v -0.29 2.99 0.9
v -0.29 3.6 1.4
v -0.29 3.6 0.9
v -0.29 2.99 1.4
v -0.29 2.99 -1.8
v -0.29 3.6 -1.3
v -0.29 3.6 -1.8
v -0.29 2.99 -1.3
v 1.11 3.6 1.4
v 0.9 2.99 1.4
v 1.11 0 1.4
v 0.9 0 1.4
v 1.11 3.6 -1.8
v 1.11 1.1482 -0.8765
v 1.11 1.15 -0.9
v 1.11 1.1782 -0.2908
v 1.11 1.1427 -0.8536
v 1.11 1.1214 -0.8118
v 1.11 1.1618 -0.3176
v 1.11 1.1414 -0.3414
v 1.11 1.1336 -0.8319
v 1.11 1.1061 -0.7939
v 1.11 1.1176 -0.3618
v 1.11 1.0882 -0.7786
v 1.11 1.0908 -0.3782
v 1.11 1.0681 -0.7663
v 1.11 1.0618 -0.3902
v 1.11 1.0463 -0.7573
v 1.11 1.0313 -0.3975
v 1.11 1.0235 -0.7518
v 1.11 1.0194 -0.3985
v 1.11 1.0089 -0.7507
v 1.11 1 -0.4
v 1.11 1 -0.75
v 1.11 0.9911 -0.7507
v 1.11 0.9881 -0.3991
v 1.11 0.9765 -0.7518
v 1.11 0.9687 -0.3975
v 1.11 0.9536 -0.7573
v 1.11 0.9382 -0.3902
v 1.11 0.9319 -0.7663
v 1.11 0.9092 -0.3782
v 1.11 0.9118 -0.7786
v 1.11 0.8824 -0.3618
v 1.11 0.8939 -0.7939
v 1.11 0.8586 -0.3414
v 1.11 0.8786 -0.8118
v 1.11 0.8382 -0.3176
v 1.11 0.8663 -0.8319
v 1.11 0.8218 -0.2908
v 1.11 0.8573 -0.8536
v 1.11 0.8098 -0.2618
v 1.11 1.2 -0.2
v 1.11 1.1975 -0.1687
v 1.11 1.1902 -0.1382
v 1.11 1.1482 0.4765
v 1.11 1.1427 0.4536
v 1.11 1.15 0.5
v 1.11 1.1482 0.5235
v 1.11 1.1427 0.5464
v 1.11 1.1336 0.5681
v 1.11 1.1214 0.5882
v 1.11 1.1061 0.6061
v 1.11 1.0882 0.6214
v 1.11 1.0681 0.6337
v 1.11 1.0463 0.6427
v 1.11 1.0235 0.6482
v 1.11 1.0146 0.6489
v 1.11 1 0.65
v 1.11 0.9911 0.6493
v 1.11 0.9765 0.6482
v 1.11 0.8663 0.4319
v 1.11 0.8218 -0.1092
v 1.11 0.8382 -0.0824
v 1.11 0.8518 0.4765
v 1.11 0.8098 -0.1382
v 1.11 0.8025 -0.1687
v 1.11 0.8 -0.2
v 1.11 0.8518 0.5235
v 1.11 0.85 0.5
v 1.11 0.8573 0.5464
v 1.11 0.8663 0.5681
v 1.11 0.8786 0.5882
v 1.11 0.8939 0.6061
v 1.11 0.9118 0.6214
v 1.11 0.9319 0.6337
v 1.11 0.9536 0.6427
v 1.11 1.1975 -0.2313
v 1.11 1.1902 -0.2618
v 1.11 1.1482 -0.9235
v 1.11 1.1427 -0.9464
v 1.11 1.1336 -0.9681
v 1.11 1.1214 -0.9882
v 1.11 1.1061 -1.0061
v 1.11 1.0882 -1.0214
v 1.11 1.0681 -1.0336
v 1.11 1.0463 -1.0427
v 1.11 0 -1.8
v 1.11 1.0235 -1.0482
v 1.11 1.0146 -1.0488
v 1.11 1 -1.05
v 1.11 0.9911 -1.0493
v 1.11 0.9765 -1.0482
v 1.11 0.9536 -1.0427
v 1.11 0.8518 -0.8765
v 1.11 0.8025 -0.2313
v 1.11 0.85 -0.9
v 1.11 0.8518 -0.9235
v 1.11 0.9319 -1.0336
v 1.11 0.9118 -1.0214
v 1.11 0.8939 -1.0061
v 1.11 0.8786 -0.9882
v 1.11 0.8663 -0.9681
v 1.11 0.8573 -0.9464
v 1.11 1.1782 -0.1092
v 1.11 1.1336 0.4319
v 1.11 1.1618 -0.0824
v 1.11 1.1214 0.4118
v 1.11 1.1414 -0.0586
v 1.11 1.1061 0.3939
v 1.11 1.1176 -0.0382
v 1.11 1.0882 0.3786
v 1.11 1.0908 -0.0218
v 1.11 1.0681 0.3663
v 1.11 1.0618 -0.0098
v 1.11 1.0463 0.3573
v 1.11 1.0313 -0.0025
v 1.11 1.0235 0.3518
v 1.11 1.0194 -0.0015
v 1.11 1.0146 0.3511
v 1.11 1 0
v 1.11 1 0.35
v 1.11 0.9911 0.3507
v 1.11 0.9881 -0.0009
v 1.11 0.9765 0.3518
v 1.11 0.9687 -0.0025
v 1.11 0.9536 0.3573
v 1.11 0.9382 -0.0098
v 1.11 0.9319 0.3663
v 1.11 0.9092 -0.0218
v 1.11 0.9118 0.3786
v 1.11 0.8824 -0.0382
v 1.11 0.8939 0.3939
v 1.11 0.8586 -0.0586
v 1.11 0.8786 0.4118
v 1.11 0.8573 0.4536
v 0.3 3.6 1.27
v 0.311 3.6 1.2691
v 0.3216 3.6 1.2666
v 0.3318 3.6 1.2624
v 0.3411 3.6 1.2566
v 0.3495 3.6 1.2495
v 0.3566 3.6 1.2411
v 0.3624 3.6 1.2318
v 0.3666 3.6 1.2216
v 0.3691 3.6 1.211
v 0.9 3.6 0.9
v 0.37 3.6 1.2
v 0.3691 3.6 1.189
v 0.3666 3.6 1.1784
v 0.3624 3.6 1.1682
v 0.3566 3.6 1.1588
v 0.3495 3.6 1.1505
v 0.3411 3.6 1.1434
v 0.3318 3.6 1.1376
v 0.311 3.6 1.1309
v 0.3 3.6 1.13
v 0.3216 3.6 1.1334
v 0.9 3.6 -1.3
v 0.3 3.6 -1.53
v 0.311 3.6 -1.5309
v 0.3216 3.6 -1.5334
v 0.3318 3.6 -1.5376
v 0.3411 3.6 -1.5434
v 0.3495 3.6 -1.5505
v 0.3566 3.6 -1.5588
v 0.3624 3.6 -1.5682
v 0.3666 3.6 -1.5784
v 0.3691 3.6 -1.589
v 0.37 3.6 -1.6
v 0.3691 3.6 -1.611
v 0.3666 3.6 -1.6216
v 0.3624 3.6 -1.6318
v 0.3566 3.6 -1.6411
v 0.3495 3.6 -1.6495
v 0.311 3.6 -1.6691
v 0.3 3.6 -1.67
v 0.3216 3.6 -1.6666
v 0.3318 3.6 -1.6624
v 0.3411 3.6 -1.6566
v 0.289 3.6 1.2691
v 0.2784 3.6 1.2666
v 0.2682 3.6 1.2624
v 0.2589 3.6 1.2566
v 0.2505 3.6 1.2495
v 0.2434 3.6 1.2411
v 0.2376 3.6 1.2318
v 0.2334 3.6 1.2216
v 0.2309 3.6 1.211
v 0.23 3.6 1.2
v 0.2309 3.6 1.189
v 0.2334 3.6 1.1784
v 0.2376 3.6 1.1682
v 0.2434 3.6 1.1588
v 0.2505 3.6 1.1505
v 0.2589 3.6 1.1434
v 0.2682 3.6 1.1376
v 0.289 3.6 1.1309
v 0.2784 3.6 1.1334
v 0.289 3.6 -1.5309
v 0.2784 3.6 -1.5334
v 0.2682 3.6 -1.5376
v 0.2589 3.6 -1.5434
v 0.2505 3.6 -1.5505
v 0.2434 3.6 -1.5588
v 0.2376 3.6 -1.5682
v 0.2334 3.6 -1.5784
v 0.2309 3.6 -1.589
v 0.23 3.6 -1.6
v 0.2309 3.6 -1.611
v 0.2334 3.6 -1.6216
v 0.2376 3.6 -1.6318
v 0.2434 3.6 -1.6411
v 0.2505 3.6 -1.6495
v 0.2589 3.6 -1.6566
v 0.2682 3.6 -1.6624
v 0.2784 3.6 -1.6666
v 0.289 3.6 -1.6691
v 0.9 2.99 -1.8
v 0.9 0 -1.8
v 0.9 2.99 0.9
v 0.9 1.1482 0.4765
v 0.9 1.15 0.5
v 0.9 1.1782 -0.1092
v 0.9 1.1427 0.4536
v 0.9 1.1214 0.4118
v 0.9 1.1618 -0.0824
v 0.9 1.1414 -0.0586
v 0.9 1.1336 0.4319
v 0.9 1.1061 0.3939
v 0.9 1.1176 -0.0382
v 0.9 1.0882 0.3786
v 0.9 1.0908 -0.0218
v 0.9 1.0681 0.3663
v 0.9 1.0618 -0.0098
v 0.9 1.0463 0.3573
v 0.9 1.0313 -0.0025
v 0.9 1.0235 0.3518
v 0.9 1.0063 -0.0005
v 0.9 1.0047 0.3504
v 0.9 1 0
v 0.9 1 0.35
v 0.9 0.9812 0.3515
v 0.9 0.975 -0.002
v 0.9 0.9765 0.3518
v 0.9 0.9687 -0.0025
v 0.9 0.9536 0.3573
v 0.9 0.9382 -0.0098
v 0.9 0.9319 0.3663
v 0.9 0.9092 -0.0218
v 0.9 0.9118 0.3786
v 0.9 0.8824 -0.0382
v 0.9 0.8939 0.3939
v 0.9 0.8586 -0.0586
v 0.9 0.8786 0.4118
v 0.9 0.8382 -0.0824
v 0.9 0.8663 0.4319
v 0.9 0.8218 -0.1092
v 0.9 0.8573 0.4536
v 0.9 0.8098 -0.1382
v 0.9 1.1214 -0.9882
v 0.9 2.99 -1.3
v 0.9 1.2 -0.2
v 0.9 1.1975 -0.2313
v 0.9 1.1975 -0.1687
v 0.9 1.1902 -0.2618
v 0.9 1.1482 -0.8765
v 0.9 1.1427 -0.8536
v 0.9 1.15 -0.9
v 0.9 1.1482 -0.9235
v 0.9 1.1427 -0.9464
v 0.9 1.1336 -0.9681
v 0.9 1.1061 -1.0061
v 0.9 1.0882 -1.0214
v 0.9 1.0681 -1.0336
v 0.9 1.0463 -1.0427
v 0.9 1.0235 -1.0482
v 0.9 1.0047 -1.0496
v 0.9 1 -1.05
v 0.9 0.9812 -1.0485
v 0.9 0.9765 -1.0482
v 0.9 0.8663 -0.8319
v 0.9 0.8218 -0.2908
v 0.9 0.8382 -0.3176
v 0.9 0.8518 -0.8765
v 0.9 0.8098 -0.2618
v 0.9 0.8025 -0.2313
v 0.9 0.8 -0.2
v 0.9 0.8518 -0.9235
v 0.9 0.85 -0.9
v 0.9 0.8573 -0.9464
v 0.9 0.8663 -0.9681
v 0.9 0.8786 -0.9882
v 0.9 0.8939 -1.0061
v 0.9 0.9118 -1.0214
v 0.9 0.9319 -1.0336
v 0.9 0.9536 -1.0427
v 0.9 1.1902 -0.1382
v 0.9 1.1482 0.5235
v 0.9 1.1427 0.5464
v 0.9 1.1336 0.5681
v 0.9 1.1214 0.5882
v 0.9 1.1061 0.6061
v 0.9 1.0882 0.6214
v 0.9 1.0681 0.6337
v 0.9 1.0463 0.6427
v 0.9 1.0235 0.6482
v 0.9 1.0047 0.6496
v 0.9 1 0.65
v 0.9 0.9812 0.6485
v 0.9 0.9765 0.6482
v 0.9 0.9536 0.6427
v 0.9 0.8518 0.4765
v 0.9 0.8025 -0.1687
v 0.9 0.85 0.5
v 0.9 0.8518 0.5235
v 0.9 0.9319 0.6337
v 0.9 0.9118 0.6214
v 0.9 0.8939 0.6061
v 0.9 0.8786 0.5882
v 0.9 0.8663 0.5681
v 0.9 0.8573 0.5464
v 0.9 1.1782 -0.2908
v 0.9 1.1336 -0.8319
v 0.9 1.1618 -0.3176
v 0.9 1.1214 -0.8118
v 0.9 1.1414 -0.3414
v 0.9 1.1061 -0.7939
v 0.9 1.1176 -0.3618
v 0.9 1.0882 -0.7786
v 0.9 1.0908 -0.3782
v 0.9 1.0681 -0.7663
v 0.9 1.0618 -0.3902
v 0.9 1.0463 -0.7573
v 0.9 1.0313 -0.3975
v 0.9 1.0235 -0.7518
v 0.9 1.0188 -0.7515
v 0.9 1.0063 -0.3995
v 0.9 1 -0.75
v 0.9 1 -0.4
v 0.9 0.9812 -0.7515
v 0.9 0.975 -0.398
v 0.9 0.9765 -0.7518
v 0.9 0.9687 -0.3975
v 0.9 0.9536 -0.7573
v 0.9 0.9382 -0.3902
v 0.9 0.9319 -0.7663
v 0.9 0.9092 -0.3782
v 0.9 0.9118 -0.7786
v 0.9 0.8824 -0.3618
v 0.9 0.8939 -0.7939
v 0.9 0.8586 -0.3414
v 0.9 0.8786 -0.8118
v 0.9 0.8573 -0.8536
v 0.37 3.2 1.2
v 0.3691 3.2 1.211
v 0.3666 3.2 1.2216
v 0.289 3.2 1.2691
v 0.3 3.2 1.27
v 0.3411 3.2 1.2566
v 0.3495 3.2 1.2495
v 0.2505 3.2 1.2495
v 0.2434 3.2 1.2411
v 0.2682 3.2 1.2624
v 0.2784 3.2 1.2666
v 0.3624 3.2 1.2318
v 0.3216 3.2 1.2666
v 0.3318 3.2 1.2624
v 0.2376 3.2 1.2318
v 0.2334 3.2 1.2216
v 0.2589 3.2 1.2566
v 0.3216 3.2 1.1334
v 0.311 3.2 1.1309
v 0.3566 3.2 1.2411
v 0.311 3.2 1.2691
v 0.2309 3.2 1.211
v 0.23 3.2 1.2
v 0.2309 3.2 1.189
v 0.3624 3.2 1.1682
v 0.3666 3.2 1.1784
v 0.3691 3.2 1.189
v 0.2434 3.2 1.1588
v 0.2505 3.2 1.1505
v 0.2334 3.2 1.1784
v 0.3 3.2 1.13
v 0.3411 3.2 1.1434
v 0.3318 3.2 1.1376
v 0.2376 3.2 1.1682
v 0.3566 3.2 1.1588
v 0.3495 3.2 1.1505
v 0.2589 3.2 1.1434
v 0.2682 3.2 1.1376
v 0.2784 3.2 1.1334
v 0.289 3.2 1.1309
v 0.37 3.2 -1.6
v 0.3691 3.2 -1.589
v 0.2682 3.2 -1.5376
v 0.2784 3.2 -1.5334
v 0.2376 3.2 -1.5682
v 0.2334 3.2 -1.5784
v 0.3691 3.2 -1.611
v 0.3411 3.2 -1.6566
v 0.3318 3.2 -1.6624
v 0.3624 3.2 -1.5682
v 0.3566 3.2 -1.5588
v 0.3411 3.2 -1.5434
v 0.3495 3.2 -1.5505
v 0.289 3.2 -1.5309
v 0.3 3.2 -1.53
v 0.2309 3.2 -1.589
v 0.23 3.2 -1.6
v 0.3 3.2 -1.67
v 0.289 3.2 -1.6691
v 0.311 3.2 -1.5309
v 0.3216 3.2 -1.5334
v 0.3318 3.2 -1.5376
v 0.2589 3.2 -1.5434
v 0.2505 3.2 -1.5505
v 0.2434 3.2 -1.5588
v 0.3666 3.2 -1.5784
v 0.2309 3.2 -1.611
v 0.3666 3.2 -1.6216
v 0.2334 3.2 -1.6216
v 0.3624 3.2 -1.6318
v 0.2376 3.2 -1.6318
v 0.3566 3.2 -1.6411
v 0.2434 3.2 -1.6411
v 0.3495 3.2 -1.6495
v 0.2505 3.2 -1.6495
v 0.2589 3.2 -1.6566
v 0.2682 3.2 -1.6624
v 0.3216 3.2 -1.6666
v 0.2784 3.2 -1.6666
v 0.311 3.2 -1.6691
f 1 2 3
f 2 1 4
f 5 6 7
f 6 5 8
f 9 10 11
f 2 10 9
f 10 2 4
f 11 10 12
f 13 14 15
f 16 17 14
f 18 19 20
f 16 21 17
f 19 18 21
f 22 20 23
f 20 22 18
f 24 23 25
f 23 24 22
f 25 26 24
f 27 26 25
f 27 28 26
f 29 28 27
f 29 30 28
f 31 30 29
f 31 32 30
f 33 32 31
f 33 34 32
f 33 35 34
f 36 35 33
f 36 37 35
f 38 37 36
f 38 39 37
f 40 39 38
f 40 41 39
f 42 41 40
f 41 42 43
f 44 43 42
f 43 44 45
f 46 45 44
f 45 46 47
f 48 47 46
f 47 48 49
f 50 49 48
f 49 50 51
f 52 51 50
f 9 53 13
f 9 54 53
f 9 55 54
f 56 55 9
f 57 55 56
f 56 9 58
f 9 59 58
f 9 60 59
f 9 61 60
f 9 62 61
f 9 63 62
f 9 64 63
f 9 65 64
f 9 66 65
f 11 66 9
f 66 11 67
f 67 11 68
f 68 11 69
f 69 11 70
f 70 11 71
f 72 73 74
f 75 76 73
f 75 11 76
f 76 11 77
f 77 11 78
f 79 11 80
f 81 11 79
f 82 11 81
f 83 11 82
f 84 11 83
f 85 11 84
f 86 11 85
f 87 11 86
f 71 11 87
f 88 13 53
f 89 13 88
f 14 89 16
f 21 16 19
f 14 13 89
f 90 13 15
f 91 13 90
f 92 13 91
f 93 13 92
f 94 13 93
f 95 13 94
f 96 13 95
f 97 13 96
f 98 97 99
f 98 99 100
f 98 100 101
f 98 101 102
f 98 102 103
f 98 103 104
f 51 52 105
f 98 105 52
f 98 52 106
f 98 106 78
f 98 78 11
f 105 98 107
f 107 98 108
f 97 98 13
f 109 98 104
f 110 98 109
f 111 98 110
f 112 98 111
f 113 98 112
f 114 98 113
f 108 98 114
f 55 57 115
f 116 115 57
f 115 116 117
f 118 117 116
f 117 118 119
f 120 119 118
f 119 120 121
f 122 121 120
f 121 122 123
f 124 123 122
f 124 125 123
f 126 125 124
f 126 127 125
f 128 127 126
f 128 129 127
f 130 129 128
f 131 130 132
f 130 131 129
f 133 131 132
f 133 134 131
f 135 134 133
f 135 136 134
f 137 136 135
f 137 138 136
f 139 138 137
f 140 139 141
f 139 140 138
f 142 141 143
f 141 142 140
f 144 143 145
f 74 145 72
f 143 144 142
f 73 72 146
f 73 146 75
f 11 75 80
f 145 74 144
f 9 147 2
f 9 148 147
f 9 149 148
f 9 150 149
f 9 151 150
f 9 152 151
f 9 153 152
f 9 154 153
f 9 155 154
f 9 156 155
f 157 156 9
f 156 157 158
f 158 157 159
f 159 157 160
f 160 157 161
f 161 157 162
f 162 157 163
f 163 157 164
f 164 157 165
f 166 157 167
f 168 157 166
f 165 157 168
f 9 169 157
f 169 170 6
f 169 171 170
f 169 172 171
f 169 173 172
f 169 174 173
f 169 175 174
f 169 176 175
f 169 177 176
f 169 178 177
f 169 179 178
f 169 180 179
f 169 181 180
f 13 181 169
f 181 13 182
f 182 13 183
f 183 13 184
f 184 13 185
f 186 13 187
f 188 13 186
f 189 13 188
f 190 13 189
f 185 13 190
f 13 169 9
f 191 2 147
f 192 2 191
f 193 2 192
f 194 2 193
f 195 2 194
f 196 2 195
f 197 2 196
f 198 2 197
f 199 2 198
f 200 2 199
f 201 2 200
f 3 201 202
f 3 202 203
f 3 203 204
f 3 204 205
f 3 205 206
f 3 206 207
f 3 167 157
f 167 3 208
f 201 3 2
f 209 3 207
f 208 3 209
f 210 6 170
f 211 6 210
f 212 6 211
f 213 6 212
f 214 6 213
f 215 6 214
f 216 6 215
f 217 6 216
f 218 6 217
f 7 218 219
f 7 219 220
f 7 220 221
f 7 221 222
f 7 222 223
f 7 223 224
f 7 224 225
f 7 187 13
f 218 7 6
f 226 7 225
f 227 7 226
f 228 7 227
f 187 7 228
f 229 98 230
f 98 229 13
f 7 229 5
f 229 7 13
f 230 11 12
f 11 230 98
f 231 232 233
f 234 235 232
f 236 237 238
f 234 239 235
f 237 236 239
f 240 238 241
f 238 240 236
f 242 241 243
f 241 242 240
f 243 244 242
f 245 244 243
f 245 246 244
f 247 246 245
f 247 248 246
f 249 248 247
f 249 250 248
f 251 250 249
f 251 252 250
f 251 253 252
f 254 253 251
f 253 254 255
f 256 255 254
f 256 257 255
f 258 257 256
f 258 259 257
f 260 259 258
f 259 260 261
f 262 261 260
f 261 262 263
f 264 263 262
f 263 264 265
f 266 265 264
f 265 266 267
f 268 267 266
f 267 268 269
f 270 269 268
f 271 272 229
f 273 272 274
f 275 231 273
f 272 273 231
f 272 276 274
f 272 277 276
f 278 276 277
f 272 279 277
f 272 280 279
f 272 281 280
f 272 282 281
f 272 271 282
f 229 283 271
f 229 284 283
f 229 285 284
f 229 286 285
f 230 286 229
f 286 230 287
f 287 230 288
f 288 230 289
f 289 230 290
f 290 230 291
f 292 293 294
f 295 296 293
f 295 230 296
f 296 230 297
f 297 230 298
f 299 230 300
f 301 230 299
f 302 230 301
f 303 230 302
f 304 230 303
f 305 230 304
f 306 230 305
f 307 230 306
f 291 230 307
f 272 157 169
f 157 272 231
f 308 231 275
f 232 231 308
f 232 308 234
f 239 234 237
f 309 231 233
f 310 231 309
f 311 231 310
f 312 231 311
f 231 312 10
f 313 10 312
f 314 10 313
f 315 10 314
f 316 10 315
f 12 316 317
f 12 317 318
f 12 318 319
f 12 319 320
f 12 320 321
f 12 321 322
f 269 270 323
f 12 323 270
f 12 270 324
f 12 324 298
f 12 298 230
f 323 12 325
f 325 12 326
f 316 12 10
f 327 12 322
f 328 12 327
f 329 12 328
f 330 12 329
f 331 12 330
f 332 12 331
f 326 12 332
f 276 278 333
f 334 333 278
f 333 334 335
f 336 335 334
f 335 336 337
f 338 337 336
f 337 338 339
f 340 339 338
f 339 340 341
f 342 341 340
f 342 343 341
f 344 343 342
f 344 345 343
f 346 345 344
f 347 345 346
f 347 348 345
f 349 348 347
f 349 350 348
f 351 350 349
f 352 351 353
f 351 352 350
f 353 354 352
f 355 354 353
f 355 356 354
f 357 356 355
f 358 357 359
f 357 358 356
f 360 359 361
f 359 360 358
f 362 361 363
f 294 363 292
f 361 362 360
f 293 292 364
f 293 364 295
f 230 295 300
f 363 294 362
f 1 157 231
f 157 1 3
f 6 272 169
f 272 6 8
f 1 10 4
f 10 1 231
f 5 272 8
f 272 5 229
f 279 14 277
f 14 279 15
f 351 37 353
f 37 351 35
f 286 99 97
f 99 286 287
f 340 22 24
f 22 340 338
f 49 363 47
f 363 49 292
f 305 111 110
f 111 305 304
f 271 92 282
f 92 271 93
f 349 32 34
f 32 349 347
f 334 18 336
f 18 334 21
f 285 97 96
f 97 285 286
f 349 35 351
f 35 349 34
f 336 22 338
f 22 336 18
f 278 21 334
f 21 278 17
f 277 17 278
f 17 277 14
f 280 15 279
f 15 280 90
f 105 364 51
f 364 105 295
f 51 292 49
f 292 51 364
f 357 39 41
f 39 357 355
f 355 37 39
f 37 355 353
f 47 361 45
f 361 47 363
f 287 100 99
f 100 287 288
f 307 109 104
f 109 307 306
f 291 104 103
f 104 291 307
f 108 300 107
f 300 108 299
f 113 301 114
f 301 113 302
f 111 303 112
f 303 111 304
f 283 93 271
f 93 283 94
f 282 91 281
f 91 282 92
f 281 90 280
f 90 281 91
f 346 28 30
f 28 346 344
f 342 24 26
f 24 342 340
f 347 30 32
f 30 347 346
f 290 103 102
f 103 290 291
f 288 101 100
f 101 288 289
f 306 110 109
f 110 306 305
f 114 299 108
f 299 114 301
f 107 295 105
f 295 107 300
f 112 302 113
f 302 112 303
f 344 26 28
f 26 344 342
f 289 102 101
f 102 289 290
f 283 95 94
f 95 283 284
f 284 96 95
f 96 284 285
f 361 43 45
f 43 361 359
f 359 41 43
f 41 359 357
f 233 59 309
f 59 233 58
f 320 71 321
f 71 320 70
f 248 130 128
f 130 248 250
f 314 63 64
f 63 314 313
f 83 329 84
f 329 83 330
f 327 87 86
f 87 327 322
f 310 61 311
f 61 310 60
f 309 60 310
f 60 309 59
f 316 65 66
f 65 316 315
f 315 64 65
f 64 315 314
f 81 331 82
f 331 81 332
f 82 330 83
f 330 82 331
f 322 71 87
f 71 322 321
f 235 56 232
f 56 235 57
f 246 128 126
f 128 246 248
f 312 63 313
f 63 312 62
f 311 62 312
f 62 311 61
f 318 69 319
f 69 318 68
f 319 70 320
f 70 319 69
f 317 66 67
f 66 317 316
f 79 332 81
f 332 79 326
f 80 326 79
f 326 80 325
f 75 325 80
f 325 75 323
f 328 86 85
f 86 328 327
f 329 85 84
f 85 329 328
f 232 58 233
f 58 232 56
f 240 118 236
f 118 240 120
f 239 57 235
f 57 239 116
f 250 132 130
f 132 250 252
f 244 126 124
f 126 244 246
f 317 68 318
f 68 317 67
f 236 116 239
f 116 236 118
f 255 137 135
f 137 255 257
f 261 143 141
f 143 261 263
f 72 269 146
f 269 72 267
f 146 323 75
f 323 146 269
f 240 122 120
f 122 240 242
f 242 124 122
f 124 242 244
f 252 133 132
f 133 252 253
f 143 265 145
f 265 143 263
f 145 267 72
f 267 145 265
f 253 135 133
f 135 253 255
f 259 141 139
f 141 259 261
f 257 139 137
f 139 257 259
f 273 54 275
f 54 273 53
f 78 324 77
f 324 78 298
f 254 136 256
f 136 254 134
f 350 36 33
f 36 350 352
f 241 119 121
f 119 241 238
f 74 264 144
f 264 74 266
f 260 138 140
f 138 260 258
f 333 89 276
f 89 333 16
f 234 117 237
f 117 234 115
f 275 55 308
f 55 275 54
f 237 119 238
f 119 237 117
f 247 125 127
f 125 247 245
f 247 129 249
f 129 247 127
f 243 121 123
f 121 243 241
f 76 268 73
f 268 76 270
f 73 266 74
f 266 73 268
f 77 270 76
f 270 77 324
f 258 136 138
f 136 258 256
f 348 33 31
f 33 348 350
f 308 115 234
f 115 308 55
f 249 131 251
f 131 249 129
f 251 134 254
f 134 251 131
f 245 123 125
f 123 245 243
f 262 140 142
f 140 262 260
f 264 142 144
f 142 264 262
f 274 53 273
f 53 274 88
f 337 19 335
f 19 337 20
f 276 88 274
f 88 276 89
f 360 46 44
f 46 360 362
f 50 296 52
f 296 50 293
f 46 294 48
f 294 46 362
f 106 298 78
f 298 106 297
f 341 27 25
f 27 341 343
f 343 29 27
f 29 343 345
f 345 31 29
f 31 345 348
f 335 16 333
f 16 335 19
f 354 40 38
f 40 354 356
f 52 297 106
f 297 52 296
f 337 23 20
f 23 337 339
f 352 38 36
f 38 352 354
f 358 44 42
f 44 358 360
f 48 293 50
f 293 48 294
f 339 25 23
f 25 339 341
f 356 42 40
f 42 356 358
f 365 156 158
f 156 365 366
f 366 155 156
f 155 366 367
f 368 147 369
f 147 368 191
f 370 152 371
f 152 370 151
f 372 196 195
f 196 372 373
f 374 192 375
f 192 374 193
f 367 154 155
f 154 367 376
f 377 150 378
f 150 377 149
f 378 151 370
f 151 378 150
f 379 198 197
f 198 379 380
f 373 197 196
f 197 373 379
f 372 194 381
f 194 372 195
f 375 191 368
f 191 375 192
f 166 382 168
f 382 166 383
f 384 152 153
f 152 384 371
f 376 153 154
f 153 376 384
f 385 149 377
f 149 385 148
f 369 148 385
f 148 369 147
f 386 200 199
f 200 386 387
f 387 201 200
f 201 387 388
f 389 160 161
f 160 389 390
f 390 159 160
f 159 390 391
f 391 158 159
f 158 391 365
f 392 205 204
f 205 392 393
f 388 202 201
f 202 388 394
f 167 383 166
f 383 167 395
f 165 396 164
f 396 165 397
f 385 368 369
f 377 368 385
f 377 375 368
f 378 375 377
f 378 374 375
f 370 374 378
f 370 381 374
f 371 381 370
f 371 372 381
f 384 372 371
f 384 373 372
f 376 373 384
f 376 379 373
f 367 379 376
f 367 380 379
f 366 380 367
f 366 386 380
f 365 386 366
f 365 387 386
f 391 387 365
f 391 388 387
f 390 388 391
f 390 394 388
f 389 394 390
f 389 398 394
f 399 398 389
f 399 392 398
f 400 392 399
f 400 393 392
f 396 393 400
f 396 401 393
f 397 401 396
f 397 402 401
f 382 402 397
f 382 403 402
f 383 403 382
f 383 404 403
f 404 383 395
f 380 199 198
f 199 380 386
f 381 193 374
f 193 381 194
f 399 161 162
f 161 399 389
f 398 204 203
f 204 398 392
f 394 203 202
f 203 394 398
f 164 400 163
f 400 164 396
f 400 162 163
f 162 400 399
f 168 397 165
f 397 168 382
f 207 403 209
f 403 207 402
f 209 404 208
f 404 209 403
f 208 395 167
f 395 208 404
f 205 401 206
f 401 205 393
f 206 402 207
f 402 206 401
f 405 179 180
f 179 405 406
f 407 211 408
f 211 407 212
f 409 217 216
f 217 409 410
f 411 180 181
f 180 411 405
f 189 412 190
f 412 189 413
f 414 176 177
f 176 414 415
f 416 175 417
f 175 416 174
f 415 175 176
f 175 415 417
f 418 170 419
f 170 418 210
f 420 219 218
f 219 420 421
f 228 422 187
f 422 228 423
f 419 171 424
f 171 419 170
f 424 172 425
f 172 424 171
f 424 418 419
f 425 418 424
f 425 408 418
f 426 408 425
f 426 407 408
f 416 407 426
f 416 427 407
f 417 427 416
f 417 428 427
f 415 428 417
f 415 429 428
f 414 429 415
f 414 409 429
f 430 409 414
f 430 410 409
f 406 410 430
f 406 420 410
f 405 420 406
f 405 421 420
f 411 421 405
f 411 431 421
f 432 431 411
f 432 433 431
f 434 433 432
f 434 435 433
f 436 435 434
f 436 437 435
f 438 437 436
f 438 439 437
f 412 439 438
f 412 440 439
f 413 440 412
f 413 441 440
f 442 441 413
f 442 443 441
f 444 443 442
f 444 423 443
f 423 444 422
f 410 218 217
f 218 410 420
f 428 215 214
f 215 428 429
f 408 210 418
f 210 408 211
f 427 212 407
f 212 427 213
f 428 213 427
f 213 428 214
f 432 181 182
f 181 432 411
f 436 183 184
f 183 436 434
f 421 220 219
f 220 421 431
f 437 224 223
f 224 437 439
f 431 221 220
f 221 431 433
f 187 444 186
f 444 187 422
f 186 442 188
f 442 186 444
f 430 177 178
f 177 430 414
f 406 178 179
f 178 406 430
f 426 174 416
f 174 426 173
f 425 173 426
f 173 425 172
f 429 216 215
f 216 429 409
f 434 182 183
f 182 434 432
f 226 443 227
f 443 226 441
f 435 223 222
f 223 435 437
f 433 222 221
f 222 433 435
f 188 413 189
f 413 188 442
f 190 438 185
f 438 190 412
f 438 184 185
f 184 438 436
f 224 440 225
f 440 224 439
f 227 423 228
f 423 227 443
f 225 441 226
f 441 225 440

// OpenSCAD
translate([0,0,]) difference() {
    translate([-0.29,0,-1.8]) cube([1.4,3.6,3.2]);
    translate([-0.3,-0.1,-1.9]) cube([1.2,1.7,3.4]);

    translate([-0.3,1.9,-1.3]) cube([1.2,1.72,2.2]);
    translate([-0.3,1.59,-1.9]) cube([1.2,1.4,3.4]);

    
    // Drill holes
    translate([0.8,1,-0.9]) rotate([90,0,90]) cylinder(h=0.5, r=0.15, $fn=40);
    translate([0.8,1,0.5]) rotate([90,0,90]) cylinder(h=0.5, r=0.15, $fn=40);
    //dent
    translate([0.8,1,-0.2]) rotate([90,0,90]) cylinder(h=0.5, r=0.2, $fn=40);
    
    // Screw holes
    translate([0.3,3.7,1.2]) rotate([90,0,0]) cylinder(h=0.5, r=0.07, $fn=40);
    translate([0.3,3.7,-1.6]) rotate([90,0,0]) cylinder(h=0.5, r=0.07, $fn=40);



}
